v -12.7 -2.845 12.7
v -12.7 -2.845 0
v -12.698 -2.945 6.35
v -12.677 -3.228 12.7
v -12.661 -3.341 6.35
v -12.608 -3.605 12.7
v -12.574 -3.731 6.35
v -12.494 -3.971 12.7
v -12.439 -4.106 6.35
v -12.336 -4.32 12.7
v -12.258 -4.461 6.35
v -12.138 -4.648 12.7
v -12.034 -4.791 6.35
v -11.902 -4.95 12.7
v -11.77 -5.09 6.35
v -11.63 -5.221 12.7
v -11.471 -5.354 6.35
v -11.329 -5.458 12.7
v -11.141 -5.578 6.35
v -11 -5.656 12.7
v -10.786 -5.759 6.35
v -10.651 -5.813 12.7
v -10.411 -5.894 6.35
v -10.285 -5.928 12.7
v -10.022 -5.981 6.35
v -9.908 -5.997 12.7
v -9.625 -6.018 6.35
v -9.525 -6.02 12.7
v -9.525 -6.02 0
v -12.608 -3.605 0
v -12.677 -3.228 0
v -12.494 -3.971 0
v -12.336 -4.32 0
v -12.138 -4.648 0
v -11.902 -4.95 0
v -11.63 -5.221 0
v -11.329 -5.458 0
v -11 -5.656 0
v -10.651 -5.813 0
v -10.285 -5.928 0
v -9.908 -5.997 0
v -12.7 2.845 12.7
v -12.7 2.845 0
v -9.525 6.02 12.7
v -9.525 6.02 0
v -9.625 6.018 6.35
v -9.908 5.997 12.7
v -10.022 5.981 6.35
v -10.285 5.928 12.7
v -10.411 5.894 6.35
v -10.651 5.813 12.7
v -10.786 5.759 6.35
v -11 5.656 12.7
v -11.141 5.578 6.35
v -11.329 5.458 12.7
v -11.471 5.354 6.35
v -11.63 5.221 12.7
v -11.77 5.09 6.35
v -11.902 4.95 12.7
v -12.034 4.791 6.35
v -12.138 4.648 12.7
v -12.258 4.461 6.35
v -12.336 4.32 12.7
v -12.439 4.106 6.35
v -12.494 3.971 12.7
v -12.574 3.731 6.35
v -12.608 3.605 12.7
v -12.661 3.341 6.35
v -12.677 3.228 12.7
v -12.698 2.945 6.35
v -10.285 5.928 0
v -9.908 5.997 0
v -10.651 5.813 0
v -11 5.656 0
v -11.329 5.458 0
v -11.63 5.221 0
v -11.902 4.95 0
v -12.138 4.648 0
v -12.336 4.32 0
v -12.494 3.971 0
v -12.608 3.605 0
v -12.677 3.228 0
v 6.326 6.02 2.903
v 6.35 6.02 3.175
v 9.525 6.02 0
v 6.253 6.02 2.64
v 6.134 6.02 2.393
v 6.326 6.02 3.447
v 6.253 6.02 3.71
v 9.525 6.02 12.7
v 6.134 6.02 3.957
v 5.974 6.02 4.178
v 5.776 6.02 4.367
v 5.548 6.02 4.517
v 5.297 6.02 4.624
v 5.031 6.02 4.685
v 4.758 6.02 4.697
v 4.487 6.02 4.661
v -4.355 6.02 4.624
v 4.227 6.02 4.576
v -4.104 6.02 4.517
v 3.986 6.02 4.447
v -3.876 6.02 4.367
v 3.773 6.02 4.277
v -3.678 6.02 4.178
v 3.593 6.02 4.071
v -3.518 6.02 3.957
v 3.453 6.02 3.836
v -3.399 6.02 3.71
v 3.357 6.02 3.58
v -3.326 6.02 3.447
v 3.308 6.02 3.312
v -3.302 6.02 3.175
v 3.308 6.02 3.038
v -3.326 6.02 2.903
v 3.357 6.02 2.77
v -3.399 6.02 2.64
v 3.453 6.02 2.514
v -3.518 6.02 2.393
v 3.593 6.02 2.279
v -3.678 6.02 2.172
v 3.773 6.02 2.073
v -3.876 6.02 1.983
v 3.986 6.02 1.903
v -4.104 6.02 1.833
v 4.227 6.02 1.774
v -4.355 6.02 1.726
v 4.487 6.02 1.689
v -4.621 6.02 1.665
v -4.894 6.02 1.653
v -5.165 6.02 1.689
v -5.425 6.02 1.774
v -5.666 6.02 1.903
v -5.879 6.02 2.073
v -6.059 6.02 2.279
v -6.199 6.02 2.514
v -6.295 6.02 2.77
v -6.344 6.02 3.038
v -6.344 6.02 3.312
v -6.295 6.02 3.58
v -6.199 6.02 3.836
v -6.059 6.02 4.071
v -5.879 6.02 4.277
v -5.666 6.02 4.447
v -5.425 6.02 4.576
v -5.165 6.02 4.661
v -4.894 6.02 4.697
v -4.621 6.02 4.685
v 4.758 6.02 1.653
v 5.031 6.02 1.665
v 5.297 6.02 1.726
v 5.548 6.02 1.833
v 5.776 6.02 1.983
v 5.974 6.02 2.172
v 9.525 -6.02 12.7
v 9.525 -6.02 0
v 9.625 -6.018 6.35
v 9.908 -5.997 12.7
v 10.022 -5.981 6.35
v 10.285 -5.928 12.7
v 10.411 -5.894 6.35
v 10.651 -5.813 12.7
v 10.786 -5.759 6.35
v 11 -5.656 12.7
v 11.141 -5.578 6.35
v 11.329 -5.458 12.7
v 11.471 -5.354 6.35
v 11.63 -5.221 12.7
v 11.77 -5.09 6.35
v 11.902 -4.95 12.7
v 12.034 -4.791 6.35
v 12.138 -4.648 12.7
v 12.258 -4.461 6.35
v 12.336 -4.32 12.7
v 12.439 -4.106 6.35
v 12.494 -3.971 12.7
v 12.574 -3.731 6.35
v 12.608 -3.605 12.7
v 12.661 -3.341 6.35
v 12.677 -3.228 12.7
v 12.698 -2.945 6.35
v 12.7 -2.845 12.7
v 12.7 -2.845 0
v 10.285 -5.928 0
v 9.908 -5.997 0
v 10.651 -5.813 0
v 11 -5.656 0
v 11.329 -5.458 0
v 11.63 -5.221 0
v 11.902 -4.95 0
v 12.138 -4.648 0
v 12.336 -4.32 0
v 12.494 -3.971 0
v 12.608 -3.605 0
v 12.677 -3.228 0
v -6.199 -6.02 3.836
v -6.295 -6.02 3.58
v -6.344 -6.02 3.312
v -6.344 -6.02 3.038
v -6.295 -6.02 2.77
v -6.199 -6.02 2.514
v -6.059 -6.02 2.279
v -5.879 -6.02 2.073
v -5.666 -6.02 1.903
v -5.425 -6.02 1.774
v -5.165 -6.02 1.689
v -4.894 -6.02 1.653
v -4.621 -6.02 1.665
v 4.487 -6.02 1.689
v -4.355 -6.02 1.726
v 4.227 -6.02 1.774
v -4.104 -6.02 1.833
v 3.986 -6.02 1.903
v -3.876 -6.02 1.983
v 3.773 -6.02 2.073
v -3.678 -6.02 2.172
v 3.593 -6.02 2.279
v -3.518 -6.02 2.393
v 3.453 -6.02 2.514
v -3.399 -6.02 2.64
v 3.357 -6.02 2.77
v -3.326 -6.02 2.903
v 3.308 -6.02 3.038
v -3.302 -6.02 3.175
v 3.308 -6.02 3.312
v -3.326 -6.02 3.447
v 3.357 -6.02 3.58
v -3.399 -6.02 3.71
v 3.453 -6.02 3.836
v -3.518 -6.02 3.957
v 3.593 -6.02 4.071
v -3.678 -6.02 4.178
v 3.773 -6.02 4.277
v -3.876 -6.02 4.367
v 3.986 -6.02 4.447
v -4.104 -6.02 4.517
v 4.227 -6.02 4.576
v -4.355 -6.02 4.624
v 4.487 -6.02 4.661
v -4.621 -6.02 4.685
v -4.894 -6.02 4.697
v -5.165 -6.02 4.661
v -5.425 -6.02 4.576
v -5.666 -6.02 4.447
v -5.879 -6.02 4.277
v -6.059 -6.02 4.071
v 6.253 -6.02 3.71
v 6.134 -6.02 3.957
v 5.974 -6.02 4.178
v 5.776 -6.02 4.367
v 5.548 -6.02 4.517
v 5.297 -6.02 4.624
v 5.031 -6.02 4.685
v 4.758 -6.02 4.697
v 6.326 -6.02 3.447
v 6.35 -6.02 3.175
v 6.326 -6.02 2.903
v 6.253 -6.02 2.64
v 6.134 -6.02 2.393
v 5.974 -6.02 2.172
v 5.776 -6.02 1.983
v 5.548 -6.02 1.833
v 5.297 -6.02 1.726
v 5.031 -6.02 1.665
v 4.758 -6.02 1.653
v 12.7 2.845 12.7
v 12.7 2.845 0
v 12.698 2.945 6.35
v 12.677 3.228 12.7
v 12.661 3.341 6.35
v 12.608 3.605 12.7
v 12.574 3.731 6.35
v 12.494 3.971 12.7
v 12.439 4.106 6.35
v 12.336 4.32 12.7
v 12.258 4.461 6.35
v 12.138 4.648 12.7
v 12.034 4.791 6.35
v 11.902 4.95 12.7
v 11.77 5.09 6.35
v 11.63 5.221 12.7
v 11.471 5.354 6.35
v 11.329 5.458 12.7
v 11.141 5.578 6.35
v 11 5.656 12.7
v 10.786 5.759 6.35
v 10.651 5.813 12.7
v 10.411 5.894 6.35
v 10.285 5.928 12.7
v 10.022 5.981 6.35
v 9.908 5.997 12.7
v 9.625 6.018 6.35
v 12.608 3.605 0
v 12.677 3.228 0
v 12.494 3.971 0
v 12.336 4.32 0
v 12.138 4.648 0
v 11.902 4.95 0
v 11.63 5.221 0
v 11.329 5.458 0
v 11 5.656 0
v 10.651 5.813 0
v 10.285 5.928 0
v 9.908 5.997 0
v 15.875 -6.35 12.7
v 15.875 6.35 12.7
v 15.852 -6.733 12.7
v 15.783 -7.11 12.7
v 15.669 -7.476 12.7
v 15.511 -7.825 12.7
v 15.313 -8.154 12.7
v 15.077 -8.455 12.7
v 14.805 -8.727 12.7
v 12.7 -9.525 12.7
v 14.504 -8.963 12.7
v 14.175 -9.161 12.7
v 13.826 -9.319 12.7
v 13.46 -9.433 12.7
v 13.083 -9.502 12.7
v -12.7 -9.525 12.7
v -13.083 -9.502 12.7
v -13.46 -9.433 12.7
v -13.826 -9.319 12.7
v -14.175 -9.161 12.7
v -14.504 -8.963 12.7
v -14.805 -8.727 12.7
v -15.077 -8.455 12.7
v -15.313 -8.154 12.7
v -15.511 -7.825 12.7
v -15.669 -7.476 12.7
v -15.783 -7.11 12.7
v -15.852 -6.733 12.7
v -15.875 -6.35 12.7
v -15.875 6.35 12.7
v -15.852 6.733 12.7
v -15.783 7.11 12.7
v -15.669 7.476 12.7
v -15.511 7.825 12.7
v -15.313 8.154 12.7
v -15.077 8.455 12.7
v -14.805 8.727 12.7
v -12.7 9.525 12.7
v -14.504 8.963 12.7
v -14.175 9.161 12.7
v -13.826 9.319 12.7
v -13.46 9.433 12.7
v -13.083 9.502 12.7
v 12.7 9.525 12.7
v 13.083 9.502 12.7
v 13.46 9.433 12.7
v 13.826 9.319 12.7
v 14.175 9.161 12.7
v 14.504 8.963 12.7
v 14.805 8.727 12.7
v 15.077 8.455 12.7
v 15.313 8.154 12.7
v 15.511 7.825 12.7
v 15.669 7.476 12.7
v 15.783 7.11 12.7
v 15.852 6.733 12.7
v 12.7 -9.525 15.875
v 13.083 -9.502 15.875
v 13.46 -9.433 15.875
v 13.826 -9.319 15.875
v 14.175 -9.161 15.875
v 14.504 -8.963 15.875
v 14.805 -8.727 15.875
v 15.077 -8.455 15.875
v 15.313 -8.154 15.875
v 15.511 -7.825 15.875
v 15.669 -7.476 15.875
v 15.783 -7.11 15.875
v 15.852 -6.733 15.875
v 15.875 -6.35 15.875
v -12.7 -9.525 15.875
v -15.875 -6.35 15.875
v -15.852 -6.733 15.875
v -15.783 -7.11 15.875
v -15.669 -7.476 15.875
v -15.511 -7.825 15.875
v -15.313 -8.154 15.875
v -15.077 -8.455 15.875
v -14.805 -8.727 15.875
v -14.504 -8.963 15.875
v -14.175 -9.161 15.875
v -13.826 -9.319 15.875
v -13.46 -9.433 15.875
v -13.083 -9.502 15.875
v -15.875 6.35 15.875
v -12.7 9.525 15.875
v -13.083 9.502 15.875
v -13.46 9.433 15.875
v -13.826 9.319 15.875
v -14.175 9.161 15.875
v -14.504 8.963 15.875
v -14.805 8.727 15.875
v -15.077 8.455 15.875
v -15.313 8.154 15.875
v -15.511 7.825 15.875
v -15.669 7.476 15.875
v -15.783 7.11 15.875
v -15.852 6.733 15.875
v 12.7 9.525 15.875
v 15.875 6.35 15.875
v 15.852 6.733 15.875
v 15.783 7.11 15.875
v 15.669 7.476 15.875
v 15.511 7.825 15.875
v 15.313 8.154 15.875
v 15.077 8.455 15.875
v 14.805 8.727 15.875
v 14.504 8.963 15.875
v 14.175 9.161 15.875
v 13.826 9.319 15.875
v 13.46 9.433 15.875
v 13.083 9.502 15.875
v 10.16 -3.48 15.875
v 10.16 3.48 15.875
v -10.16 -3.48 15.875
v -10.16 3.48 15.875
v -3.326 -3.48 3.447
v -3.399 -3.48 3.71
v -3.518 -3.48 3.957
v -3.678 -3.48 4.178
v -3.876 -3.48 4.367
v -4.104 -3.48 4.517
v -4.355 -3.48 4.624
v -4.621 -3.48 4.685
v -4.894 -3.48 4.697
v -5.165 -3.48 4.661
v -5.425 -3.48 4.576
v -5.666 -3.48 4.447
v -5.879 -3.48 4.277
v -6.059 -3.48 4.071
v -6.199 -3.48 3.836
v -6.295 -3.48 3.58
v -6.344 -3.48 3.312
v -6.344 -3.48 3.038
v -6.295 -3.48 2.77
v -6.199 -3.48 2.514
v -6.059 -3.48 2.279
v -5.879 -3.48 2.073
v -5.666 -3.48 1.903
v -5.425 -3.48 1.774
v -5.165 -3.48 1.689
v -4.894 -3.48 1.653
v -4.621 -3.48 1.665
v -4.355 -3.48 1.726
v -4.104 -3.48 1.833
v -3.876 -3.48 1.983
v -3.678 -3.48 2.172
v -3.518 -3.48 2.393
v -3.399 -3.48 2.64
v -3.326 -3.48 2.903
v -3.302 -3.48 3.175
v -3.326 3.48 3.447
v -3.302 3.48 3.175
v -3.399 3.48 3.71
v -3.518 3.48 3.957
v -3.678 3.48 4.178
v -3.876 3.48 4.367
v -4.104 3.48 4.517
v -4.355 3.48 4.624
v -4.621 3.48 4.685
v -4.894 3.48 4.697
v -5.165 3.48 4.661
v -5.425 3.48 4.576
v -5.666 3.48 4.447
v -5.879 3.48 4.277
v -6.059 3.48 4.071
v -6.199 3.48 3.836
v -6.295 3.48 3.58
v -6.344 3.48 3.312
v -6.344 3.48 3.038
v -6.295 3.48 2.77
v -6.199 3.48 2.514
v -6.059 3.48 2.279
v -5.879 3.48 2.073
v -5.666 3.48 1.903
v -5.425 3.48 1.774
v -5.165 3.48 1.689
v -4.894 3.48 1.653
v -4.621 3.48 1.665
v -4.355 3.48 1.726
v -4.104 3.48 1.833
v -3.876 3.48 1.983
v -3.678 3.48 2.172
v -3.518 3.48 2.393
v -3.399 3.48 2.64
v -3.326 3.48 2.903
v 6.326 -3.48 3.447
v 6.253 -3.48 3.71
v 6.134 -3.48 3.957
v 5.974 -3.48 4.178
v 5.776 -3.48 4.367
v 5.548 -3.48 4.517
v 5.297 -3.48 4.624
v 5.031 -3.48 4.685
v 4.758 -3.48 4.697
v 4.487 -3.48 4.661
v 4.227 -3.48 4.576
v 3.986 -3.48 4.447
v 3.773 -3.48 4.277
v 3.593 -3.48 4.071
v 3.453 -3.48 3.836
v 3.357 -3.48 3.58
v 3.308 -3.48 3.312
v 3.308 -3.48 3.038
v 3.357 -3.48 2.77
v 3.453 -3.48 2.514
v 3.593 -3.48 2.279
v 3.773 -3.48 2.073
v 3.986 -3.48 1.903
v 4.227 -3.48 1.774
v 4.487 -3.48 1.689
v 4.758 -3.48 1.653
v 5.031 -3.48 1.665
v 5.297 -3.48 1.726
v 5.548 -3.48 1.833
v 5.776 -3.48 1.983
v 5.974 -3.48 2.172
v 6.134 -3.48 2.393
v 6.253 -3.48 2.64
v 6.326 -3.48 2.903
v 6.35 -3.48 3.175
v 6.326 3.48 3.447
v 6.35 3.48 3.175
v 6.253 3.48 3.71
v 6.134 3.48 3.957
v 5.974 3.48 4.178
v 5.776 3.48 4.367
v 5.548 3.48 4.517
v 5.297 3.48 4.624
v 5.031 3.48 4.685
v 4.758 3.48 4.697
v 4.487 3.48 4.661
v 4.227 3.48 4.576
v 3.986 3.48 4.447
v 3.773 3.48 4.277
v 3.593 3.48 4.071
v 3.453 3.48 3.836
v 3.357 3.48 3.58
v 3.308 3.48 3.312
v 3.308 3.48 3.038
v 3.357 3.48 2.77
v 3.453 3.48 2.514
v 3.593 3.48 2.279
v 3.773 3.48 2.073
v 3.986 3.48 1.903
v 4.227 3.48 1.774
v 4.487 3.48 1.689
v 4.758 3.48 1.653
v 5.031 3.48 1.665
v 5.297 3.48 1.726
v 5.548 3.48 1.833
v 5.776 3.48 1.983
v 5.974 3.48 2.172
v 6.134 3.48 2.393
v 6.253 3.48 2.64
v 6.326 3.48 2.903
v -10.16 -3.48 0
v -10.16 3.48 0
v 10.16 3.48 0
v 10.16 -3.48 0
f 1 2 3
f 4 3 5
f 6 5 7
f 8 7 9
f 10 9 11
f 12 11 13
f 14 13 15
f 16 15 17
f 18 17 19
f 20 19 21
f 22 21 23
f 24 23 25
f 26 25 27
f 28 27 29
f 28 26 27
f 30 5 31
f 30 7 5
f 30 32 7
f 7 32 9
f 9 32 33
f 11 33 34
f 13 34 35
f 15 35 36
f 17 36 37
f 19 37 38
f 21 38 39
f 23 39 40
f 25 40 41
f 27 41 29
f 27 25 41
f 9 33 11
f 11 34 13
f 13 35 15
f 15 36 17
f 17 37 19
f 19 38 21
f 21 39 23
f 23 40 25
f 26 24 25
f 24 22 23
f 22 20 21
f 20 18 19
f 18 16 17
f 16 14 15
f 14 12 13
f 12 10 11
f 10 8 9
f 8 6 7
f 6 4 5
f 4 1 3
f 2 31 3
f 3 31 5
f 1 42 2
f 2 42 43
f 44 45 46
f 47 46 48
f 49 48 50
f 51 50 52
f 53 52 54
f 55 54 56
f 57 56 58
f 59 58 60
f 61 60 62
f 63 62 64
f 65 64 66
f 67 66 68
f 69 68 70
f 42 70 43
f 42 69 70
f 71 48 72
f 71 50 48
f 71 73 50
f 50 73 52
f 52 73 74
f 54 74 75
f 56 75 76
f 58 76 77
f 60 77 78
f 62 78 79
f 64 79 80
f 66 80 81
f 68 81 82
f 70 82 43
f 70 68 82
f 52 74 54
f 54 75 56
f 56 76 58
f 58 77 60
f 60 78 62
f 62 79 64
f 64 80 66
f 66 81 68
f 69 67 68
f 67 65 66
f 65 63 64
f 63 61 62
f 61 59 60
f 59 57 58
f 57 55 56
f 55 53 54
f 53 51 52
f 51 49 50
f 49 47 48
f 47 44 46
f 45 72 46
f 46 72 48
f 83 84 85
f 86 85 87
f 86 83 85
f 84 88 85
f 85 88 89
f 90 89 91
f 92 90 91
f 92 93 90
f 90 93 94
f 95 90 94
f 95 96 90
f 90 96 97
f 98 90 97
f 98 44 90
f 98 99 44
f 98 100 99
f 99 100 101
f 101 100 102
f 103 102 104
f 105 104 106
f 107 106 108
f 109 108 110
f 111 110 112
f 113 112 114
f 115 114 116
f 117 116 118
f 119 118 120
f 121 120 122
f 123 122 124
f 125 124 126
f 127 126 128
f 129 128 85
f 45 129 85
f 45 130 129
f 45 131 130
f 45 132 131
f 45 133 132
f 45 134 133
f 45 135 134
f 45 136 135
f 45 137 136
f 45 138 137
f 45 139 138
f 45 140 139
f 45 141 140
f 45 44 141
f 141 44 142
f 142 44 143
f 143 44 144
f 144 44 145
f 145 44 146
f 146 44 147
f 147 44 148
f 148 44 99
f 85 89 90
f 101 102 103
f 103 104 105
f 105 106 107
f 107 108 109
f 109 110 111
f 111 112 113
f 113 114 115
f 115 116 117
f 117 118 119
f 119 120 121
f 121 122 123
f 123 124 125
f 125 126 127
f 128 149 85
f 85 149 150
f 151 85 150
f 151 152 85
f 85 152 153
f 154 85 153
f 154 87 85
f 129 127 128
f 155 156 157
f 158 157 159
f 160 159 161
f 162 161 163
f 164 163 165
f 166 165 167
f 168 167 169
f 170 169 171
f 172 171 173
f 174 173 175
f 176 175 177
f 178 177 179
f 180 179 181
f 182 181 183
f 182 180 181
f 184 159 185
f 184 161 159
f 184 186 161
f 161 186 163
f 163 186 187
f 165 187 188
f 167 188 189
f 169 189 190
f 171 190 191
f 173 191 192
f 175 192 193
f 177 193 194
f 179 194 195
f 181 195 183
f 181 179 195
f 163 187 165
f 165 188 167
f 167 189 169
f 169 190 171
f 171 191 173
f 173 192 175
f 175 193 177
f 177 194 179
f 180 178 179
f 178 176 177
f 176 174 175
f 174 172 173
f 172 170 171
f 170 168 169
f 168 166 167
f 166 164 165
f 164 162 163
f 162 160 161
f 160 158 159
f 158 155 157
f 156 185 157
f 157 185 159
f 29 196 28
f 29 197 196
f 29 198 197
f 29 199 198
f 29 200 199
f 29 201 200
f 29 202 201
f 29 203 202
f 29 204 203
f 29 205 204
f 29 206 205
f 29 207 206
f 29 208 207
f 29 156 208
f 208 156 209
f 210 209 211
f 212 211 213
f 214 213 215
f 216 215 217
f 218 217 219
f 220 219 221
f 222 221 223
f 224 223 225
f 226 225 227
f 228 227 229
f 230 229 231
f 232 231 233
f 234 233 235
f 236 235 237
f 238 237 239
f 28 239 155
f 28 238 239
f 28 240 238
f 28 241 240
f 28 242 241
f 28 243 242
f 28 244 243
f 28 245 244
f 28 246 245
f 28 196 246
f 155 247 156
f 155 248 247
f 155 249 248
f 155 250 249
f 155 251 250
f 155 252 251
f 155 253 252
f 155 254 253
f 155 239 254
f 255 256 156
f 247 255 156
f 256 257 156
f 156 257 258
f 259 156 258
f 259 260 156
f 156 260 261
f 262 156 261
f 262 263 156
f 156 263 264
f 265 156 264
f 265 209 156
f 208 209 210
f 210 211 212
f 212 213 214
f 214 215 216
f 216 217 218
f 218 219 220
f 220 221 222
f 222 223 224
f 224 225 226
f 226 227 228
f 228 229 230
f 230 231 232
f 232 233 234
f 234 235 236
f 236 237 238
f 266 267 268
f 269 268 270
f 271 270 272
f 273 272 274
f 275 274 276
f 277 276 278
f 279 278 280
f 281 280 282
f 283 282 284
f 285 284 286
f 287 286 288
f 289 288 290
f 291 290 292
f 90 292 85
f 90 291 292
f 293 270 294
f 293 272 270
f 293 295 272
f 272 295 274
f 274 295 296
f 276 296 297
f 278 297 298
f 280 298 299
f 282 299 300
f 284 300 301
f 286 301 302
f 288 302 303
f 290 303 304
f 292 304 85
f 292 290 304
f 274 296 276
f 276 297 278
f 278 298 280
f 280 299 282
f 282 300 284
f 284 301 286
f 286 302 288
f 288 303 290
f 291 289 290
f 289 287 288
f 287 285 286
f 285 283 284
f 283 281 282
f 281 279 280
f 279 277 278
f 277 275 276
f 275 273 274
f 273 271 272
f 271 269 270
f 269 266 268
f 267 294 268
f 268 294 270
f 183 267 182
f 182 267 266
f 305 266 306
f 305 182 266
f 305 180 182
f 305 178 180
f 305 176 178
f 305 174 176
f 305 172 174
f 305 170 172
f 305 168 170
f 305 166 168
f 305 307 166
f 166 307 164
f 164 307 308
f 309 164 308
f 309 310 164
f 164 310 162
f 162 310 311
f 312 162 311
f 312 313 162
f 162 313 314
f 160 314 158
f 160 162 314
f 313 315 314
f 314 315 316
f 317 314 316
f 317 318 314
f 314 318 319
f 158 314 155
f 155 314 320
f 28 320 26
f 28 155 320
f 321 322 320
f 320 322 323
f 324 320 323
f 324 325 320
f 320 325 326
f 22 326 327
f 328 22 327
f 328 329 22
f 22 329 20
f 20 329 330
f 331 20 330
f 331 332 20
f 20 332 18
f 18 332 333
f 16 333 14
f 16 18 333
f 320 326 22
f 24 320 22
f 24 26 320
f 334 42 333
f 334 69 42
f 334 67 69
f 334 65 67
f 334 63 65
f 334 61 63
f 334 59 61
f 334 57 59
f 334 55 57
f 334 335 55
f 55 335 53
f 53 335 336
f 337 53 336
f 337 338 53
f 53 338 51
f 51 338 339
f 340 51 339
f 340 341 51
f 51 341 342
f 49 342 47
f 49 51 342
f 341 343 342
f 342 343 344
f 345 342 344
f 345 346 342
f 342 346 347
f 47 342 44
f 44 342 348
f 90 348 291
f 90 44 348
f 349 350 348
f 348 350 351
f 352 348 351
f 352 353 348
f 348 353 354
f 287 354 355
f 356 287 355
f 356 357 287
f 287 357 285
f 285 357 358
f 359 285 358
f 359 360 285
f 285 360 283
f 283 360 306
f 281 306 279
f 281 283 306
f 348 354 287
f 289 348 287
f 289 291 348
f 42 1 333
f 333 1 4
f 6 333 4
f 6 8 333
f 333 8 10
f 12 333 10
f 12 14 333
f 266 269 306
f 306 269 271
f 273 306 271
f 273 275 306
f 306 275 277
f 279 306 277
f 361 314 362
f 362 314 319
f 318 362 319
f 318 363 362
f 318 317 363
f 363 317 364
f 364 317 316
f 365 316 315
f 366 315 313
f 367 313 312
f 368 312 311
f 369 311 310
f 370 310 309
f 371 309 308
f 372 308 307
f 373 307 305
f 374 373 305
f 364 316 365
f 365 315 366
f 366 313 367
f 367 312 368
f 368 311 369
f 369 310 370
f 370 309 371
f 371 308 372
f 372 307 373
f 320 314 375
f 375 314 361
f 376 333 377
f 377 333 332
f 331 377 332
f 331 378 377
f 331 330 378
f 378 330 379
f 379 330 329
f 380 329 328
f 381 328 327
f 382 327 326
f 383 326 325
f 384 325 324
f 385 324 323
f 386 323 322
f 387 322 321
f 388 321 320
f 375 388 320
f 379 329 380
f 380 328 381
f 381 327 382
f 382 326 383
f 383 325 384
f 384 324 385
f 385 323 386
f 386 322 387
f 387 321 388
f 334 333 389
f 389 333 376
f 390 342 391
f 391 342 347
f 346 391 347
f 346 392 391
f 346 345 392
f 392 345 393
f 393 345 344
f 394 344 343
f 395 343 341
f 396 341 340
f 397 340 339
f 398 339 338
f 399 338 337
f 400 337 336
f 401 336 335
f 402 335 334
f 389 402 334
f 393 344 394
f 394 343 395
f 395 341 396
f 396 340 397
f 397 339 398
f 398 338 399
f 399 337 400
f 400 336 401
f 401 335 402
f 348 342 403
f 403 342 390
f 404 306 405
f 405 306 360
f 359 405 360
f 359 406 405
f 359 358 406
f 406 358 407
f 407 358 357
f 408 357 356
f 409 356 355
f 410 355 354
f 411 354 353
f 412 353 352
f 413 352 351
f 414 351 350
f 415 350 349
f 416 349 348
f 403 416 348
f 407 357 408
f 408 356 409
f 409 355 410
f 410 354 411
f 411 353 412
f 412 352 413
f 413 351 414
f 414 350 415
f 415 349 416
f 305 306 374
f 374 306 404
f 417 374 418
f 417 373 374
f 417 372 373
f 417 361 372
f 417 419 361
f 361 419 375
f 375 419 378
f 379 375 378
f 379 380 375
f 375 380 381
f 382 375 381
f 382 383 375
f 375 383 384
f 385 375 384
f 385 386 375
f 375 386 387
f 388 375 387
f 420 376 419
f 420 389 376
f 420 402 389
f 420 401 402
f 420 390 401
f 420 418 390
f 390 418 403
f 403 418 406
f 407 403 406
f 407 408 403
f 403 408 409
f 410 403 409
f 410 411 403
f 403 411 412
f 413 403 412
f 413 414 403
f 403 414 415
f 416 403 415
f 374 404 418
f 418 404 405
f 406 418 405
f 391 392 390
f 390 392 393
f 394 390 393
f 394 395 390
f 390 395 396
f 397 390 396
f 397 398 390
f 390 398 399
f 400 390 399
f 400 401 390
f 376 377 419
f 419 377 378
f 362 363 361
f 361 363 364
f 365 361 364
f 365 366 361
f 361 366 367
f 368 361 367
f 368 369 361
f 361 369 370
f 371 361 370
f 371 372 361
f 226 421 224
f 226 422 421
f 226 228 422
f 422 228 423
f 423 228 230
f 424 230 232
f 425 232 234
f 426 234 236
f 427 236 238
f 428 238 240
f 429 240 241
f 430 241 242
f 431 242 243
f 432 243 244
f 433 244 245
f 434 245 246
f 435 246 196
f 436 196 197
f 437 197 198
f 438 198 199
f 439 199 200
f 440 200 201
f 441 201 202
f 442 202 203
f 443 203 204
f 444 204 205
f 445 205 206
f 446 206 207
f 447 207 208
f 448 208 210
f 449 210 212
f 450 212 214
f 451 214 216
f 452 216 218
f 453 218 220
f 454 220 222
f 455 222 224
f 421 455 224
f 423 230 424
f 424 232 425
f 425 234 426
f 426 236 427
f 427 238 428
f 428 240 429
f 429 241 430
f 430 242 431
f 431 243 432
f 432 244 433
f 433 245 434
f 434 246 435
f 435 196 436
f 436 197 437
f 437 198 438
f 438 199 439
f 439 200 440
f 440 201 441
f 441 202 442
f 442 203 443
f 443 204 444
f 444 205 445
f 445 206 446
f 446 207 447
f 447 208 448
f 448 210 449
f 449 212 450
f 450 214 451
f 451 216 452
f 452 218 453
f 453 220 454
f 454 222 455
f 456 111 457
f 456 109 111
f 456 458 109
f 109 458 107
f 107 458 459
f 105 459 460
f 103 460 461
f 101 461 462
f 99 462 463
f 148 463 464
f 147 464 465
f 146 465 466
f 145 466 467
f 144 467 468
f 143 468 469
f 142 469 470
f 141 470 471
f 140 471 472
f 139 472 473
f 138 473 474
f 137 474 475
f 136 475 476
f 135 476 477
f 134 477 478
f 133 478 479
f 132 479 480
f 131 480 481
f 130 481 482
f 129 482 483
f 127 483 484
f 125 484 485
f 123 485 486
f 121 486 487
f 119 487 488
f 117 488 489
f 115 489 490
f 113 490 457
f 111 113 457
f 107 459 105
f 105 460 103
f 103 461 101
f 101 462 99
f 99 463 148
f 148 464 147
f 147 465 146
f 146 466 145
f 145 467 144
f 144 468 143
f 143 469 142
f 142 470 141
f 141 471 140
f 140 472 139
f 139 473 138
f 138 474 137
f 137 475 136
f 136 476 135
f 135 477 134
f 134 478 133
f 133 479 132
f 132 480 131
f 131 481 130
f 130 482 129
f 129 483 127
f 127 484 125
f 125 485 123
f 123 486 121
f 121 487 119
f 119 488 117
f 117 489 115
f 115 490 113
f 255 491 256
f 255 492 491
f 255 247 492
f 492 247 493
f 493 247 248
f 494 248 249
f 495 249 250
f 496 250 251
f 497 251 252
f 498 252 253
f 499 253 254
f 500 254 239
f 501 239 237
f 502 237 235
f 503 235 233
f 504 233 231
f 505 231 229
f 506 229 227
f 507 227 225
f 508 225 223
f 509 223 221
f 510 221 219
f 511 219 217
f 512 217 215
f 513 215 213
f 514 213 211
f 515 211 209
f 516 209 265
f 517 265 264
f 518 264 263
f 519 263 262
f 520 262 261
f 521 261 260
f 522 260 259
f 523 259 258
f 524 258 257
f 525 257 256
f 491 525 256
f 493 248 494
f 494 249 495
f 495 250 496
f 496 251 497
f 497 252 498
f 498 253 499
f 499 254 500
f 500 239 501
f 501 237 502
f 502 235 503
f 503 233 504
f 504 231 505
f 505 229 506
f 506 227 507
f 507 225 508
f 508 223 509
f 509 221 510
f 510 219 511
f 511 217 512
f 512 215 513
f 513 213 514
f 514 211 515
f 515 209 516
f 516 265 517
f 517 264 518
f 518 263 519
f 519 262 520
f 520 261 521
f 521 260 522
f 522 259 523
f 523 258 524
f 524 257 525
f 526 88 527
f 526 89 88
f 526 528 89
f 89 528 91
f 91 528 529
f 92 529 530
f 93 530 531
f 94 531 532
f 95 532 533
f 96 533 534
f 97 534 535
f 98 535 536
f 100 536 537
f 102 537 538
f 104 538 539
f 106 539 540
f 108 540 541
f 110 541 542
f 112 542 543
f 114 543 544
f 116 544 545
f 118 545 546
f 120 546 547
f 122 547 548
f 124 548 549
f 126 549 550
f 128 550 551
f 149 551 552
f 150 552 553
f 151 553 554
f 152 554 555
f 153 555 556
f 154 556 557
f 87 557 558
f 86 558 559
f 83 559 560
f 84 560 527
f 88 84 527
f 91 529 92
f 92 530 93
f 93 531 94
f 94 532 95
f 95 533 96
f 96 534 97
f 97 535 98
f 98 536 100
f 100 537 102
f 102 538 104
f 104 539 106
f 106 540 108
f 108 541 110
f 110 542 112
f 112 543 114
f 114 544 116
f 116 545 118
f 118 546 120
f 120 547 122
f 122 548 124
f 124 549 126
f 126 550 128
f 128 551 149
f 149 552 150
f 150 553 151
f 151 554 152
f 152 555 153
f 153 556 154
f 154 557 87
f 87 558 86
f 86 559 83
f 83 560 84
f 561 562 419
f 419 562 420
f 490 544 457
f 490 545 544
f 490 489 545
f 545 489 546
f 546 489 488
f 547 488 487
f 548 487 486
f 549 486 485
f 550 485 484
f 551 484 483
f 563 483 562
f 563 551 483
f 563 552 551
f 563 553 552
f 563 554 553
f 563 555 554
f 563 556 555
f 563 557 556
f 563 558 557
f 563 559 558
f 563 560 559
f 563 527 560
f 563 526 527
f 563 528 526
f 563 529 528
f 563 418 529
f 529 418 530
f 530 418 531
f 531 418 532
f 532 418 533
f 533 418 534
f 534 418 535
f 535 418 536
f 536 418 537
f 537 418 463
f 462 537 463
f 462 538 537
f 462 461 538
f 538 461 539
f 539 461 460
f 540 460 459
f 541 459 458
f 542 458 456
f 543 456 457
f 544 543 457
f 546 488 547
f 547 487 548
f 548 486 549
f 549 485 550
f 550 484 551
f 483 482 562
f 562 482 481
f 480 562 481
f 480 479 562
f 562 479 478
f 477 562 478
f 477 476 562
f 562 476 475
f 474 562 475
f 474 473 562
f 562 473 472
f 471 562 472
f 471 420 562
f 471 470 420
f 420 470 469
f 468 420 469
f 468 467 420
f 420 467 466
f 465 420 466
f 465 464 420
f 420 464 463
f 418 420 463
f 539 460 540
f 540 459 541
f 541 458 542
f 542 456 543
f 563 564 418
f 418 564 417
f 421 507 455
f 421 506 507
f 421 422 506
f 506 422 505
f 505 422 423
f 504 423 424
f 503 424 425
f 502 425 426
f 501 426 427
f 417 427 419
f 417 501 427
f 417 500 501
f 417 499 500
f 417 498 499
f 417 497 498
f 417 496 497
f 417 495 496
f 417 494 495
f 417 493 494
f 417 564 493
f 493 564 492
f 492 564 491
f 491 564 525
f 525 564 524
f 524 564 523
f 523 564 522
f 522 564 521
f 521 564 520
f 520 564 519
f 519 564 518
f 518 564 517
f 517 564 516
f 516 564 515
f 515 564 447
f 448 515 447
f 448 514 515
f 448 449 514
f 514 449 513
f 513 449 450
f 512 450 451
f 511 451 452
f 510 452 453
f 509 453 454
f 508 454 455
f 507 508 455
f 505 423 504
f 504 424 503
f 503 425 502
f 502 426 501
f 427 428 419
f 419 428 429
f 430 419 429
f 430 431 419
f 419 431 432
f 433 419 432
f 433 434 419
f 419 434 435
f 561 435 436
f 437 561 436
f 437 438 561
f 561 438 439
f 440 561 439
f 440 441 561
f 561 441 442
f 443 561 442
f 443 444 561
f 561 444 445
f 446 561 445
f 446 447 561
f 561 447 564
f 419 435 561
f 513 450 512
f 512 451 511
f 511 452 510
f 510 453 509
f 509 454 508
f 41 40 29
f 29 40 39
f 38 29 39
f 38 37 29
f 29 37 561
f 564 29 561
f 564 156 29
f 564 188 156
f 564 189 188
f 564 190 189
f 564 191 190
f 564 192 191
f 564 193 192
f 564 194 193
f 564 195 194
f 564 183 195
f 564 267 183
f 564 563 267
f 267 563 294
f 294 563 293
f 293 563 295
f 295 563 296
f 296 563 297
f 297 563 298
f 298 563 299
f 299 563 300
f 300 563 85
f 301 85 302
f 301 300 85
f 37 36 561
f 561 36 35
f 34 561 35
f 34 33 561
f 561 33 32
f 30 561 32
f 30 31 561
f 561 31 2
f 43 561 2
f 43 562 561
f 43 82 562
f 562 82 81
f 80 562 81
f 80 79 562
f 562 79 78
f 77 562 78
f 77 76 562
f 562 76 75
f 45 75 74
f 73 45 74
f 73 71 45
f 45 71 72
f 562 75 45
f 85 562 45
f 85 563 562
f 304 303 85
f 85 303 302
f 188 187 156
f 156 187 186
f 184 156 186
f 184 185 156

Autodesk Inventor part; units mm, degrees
ref_plane "YZ Plane" through (0, 0, 0) normal (1, 0, 0) x (0, 1, 0)
ref_plane "XZ Plane" through (0, 0, 0) normal (0, 1, 0) x (-1, 0, 0)
ref_plane "XY Plane" through (0, 0, 0) normal (0, 0, 1) x (1, 0, 0)
sketch "Sketch1" plane through (0, 0, 0) normal (0, 0, 1) x (1, 0, 0)
  line L0 (12.7, -6.0198) -> (-12.7, -6.0198)
  line L1 (-12.7, -6.0198) -> (-12.7, 6.0198)
  line L2 (-12.7, 6.0198) -> (12.7, 6.0198)
  line L3 (12.7, 6.0198) -> (12.7, -6.0198)
  line L4 (12.7, -6.0198) -> (-12.7, 6.0198) construction
  line L5 (-12.7, -6.0198) -> (12.7, 6.0198) construction
  point P0 (0, 0)
  dimension "d0" = 25.4
  dimension "d1" = 12.0396
extrude "Extrusion1" add sketch "Sketch1" along normal blind 12.7
shell "Shell1" thickness 2.54 removed faces 2 at (4.2333, -2.0066, 0) at (4.2333, -2.0066, 12.7)
sketch "Sketch2" plane through (-12.7, 6.0198, 0) normal (0, 1, 0) x (1, 0, 0)
  line L0 (-2.1226, -3.175) -> (30.0619, -3.175)
  line L1 (0, 0) -> (25.4, 0) projected
  circle A0 centre (7.874, -3.175) radius 1.524
  circle A1 centre (17.526, -3.175) radius 1.524
  line L2 (12.7, 1.1779) -> (12.7, -16.2415)
  point P0 (12.7, 0)
  point P1 (12.7, 0)
  dimension "d23" = 3.175
  dimension "d24" = 3.048
  dimension "d25" = 9.652
extrude "Extrusion2" cut sketch "Sketch2" against normal through all
sketch "Sketch3" plane through (0, 0, 12.7) normal (0, 0, 1) x (1, 0, 0)
  line L0 (-10.16, 3.4798) -> (10.16, 3.4798)
  line L1 (10.16, 3.4798) -> (10.16, -3.4798)
  line L2 (10.16, -3.4798) -> (-10.16, -3.4798)
  line L3 (-10.16, -3.4798) -> (-10.16, 3.4798)
  line L4 (-10.16, 3.4798) -> (10.16, -3.4798) construction
  line L5 (10.16, 3.4798) -> (-10.16, -3.4798) construction
  line L6 (-12.7, 9.525) -> (12.7, 9.525)
  line L7 (15.875, 6.35) -> (15.875, -6.35)
  line L8 (12.7, -9.525) -> (-12.7, -9.525)
  line L9 (-15.875, -6.35) -> (-15.875, 6.35)
  line L10 (-15.875, 9.525) -> (15.875, -9.525) construction
  line L11 (15.875, 9.525) -> (-15.875, -9.525) construction
  arc A0 (12.7, -9.525) -> (15.875, -6.35) centre (12.7, -6.35) ccw
  arc A1 (15.875, 6.35) -> (12.7, 9.525) centre (12.7, 6.35) ccw
  arc A2 (-12.7, 9.525) -> (-15.875, 6.35) centre (-12.7, 6.35) ccw
  arc A3 (-15.875, -6.35) -> (-12.7, -9.525) centre (-12.7, -6.35) ccw
  point P0 (0, 0)
  dimension "d28" = 19.05
  dimension "d29" = 31.75
  dimension "d30" = 3.175
extrude "Extrusion3" add sketch "Sketch3" along normal blind 3.175
fillet "Fillet1" radius 3.175 4 edges at (12.7, 6.0198, 6.35) (12.7, -6.0198, 6.35) (-12.7, 6.0198, 6.35) (-12.7, -6.0198, 6.35)
properties part number "E-Stop_Fixture"
